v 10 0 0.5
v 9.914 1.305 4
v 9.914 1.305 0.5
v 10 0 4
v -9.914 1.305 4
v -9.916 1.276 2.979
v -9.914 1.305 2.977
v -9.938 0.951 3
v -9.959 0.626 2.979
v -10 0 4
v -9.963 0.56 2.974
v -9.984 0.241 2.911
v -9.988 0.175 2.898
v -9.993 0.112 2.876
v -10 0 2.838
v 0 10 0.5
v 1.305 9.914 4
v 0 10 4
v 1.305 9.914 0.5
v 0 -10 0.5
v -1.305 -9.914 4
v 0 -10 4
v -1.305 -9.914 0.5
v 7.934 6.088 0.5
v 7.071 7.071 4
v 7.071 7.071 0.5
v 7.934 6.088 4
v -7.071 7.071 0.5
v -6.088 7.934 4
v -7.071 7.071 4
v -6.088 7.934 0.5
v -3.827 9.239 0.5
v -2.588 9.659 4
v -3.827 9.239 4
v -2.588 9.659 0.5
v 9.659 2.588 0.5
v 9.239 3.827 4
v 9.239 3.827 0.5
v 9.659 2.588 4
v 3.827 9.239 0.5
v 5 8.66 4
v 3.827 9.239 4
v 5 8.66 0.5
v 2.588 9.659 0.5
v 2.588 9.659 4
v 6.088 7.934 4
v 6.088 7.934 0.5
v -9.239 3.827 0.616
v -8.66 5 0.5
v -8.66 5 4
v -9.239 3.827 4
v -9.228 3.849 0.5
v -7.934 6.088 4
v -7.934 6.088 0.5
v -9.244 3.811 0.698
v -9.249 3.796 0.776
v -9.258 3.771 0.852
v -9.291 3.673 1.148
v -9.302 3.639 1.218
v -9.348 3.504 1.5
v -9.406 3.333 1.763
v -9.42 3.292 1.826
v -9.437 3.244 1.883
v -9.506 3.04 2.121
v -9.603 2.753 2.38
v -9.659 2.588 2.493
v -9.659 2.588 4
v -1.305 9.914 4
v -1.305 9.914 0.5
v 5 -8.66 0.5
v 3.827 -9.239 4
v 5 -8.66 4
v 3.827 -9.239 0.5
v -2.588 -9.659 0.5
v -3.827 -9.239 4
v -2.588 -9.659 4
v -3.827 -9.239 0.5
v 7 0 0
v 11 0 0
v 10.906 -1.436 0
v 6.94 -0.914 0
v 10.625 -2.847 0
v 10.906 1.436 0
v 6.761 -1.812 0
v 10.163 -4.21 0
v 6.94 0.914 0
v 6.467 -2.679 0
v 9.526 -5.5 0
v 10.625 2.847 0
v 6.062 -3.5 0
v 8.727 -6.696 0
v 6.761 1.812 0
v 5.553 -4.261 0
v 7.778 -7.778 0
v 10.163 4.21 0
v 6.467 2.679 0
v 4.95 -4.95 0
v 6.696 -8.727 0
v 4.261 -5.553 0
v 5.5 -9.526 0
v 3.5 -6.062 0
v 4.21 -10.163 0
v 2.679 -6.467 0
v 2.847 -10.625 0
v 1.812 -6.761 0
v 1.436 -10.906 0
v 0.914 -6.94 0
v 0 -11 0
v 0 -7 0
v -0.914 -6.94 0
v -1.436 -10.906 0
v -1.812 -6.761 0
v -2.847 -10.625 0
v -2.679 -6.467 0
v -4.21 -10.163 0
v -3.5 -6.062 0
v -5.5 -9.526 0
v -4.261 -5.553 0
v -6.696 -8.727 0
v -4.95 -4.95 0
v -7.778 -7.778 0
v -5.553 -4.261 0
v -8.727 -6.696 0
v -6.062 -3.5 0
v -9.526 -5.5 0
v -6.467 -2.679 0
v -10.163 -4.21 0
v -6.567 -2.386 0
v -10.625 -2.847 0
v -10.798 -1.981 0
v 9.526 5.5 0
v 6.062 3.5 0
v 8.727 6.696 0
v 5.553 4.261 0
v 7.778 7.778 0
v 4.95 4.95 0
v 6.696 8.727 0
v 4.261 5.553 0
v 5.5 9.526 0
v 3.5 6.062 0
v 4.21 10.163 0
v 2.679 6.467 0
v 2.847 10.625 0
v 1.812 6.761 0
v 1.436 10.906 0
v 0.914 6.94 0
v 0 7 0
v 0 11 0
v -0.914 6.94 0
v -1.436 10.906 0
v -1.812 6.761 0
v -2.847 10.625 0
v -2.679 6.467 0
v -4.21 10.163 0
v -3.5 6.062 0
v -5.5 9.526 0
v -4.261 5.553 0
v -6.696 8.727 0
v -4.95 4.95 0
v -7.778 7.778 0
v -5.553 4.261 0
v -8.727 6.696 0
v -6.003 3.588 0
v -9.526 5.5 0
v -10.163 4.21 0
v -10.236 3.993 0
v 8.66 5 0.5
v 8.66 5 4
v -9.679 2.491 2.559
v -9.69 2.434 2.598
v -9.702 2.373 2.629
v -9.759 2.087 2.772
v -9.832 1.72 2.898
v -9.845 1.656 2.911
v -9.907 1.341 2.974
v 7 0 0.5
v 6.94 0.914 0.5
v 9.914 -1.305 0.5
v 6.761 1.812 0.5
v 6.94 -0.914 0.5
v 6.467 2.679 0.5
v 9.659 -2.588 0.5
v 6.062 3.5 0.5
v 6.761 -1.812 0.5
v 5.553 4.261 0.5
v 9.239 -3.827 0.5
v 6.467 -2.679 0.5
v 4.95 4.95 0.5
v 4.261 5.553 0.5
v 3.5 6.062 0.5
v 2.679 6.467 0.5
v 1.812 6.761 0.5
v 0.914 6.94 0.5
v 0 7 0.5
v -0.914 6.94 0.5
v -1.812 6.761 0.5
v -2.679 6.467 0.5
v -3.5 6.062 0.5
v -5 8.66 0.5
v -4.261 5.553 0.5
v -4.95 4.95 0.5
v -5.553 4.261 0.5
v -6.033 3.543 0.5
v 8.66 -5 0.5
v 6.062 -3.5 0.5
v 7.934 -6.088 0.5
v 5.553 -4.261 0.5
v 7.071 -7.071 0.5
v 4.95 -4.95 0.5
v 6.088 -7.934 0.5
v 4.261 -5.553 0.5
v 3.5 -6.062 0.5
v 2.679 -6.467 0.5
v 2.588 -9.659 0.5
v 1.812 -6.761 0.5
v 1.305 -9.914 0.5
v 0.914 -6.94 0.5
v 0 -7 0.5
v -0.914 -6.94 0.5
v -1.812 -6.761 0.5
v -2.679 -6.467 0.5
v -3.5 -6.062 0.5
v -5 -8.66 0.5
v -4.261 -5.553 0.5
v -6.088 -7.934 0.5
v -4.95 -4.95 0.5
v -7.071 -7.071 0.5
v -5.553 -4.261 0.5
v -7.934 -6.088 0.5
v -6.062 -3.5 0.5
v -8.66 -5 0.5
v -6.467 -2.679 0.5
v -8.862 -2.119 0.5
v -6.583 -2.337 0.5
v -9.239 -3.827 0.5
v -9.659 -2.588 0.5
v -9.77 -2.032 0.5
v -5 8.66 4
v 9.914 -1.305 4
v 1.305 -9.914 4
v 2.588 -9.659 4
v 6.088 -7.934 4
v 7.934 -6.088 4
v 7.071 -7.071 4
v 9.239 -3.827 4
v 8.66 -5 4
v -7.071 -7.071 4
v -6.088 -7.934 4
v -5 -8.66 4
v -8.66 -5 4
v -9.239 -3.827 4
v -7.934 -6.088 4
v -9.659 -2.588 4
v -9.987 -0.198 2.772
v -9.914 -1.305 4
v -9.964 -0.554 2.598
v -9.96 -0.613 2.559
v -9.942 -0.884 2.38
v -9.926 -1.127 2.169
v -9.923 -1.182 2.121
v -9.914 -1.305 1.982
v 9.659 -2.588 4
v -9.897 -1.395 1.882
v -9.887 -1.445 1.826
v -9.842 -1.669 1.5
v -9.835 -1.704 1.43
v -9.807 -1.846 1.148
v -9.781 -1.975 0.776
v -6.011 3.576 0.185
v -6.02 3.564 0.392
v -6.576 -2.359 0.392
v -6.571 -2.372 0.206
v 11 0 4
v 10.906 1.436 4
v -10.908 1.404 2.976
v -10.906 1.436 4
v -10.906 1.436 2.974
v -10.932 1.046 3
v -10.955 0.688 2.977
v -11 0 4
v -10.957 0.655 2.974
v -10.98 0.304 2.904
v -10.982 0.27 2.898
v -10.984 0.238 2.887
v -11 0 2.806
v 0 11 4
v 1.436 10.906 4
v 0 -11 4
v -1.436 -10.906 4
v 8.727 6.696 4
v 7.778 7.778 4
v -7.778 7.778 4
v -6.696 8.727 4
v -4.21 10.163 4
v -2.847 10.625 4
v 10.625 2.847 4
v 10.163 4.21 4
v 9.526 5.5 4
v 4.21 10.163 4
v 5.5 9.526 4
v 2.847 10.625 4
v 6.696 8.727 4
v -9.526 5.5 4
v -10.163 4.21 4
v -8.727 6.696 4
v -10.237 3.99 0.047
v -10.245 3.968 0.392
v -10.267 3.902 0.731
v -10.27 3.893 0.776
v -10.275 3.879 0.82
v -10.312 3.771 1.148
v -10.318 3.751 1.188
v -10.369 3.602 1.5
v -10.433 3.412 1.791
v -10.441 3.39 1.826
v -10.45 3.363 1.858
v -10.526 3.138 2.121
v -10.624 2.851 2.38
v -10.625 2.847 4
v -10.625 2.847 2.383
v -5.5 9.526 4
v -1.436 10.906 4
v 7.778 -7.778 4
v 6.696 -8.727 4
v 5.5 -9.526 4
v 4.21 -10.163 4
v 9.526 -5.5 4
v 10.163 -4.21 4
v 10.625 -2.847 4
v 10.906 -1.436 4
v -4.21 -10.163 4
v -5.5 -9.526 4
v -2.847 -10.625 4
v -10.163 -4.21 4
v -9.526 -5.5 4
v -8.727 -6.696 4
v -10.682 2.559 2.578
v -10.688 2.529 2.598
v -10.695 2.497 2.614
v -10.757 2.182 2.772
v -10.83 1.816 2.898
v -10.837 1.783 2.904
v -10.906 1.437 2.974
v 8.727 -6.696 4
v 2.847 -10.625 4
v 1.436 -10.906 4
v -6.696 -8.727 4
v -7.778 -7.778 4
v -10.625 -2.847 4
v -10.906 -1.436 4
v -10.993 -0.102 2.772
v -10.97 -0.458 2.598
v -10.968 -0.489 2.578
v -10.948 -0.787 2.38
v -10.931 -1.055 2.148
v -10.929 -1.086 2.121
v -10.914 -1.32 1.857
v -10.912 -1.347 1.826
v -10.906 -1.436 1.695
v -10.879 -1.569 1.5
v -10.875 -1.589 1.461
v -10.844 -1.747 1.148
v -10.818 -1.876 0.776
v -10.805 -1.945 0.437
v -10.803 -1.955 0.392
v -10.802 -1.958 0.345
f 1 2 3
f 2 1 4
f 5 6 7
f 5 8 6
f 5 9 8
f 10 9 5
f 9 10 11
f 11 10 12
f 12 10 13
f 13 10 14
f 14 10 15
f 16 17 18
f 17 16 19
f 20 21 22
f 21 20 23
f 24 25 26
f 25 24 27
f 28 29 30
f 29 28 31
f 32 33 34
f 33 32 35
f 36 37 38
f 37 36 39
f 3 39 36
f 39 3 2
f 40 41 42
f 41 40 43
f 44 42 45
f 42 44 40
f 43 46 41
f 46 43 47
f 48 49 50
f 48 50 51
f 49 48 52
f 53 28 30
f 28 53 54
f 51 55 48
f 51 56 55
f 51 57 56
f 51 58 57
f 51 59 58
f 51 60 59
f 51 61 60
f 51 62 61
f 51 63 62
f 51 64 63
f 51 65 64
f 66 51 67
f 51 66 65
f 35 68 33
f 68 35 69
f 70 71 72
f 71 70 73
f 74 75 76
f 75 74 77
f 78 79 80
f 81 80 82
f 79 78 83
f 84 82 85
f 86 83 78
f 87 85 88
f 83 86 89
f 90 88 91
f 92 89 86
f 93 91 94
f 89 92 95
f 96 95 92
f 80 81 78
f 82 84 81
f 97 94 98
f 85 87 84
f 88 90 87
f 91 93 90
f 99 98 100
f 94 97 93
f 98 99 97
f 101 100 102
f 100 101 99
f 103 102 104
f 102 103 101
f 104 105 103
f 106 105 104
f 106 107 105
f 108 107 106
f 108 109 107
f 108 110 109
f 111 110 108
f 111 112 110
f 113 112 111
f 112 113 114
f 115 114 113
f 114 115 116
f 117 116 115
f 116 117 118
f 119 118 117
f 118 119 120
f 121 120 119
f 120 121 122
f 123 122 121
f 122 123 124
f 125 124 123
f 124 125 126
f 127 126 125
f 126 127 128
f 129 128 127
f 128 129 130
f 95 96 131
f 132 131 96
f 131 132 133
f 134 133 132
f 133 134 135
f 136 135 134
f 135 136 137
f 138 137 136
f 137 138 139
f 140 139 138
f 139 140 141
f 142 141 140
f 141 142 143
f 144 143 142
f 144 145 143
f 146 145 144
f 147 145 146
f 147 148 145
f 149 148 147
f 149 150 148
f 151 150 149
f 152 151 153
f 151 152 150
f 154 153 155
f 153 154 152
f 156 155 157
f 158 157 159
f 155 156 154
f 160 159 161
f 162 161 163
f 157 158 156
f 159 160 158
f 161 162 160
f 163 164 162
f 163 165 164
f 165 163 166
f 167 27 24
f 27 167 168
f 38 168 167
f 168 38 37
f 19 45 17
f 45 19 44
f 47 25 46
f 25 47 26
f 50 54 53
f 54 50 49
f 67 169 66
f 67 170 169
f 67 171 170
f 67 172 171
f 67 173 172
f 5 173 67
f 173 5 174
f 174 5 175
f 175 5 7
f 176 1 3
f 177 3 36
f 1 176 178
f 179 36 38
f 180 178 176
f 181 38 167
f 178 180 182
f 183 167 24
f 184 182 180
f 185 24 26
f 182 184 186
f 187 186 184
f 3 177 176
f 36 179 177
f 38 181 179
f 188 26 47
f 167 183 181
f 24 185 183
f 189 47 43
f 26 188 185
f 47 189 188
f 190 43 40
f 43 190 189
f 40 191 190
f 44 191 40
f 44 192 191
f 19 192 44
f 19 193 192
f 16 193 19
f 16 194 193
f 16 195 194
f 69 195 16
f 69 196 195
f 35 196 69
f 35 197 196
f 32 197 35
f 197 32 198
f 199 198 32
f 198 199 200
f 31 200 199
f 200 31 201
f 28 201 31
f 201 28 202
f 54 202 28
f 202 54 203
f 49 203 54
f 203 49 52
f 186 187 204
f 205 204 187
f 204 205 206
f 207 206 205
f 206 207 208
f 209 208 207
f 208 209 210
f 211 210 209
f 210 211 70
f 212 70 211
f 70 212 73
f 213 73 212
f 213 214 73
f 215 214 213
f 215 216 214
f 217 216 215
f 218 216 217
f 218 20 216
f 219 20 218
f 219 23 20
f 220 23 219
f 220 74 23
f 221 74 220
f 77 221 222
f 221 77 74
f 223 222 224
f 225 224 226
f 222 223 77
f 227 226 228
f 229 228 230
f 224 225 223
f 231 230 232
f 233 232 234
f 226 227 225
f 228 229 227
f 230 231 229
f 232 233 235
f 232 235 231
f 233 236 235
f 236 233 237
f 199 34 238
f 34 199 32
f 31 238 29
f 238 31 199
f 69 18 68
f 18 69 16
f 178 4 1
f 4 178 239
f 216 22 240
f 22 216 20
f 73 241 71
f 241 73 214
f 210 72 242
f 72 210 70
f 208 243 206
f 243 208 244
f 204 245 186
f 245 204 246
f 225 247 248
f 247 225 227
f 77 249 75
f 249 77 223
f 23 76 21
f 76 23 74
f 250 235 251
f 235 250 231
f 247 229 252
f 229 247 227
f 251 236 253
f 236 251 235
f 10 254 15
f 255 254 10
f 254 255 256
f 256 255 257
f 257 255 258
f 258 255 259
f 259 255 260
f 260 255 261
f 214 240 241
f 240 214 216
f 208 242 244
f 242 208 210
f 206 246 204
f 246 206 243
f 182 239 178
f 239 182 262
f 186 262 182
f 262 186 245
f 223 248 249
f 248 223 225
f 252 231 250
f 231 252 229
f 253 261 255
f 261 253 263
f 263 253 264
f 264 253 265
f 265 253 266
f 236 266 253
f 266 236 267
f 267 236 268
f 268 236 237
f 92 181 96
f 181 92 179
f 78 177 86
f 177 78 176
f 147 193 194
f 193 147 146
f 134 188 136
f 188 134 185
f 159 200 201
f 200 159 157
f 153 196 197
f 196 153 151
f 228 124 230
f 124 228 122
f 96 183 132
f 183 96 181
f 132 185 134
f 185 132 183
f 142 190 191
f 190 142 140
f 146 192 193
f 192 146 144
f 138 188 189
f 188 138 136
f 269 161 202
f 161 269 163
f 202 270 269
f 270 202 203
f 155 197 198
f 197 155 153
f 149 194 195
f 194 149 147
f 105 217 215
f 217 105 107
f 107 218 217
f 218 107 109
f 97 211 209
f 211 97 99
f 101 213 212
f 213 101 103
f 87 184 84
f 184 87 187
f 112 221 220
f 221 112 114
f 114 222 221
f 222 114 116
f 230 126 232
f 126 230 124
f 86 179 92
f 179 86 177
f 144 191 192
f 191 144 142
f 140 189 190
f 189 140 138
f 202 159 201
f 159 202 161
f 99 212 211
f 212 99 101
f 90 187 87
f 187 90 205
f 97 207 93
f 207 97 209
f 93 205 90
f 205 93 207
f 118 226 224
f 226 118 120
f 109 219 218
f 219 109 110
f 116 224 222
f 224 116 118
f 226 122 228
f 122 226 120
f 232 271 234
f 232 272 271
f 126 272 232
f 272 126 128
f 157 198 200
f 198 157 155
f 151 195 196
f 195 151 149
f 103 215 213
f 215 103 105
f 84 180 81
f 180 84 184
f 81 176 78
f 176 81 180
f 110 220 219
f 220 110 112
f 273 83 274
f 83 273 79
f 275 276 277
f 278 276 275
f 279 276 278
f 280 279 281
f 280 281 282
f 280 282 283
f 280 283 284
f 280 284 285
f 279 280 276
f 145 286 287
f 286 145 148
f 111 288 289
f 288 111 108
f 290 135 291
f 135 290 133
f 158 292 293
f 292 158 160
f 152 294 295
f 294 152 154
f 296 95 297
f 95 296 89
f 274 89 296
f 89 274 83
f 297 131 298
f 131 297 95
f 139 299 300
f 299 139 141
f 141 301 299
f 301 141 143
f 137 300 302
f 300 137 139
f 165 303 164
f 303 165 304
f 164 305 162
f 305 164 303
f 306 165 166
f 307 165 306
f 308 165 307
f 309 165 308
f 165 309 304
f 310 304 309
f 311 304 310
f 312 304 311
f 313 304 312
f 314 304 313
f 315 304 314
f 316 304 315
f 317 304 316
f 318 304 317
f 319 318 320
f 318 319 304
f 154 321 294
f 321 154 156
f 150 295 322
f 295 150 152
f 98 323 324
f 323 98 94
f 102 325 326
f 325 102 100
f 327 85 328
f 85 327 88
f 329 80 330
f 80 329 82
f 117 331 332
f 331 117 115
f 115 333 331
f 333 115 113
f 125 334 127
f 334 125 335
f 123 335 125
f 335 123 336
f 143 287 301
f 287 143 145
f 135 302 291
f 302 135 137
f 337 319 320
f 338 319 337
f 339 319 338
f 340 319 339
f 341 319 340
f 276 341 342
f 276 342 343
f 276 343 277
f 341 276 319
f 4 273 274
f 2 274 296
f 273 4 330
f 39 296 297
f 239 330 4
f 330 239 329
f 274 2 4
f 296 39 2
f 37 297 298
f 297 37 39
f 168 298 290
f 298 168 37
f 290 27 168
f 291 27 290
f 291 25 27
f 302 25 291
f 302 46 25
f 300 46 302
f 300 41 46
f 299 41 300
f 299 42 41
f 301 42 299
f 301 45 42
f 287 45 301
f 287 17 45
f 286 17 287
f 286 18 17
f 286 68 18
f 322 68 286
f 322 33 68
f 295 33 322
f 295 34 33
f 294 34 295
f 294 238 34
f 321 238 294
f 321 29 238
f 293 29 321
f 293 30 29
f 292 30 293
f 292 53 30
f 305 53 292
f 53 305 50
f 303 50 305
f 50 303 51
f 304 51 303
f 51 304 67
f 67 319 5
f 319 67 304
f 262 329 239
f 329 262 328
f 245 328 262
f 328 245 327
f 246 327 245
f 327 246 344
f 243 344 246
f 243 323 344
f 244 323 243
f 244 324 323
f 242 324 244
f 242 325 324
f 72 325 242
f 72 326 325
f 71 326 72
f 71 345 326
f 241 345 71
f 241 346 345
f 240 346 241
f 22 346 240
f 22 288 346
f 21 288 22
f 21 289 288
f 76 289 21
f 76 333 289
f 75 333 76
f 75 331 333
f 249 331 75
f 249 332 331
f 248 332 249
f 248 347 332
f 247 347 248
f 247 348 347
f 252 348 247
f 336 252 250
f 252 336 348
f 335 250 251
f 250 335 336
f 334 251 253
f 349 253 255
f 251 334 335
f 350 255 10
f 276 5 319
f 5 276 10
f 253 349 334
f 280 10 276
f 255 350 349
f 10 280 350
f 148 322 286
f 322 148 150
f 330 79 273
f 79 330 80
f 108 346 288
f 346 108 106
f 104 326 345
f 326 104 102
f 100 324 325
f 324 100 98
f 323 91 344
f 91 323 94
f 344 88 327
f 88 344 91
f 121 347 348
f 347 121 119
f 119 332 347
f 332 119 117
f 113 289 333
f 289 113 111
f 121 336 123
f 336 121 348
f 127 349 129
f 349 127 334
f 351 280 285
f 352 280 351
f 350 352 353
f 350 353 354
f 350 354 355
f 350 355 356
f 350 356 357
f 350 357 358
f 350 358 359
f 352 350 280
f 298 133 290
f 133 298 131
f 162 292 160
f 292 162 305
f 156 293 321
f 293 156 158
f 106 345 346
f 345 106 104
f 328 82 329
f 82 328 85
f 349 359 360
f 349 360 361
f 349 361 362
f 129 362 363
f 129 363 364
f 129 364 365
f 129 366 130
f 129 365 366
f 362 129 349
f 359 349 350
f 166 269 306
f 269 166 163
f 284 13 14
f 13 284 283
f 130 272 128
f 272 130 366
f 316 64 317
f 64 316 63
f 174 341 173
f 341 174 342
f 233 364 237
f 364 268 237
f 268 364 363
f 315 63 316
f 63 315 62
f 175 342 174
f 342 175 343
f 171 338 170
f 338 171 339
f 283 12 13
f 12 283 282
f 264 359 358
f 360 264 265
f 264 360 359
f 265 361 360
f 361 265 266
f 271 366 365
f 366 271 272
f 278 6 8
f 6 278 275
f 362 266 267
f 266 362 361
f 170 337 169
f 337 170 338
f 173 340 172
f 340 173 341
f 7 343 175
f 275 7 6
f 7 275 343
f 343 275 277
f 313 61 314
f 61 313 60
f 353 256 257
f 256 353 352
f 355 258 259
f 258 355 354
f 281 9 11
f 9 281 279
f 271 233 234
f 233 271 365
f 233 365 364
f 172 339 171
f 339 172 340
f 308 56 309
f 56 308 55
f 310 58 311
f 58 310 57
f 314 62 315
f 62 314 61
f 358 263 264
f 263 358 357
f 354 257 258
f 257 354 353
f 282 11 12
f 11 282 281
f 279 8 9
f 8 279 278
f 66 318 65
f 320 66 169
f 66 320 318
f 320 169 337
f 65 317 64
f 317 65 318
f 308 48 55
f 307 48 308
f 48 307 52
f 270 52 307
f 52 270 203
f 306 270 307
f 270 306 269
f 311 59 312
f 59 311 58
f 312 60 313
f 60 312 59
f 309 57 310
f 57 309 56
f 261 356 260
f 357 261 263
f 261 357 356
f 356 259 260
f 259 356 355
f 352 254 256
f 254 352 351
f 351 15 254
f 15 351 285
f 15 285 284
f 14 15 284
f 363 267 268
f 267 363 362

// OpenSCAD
// file: ../build_environments.scad
// build_environments.scad: modules to build level sections
//

module pool(diameter=10.0, wall_height=2.0, step_width=3.0, connections=[])
{
    difference() {
        union() {
        difference() {
            cylinder(h=0.5,r1=diameter+step_width,r2=diameter+step_width,$fn=48);
            translate([0,0,-0.1])
                cylinder(h=0.7,r1=diameter,r2=diameter,$fn=48);
        }
        difference() {
            cylinder(h=wall_height,r1=diameter+step_width+1.0,r2=diameter+step_width+1.0,$fn=48);
            translate([0,0,-0.1])
                cylinder(h=wall_height+0.2,r1=diameter+step_width,r2=diameter+step_width,$fn=48);
        }
        }
    
        for (c = connections)
        {
            rotate([0,90,0]) {
                angle = atan2(c[1],c[0]);
                rotate([-angle,0,0]) {
                    cylinder(h=diameter+5.0,r1=c[2],r2=c[2],$fn=48);
                }
            }
        }
    }
}

module straight(length=10.0, width=2.0, dy1=0.0, dy2=0.0, dz=0.0)
{
    dims = [0, 0, 0, 0, 0, (dz/length)];
    matrix = [
        [ 1, dims[0], dims[1], 0 ],
        [ dims[2], 1, dims[4], 0 ],
        [ dims[5], dims[3], 1, 0 ],
        [ 0, 0, 0, 1 ]
    ];
    multmatrix(matrix)
    difference() {
        translate([dy1,0,0])
        union() {
            rotate([0,90,0]) {
                difference() {
                    cylinder(h=(length-dy1-dy2),r1=width+1.0,r2=width+1.0,$fn=24);
                    translate([0,0,-0.1])
                        cylinder(h=(length-dy1-dy2+0.2),r1=width,r2=width,$fn=24);
                }
                difference() {
                    cylinder(h=1.0,r1=width+2.0,r2=width+2.0,$fn=24);
                    translate([0,0,-0.1])
                        cylinder(h=1.2,r1=width,r2=width,$fn=24);
                }
                translate([0,0,(length-dy1-dy2)-1.0]) {
                    difference() {
                        cylinder(h=1.0,r1=width+2.0,r2=width+2.0,$fn=24);
                        translate([0,0,-0.1])
                            cylinder(h=1.2,r1=width,r2=width,$fn=24);
                    }
                }
            }
        }
        translate([0,0,-(2*width+4.0)/2])
            cube([3*length,3*length,2*width+4.0],center=true);
    }
}

module curve(p0=[0,0], center=[0,0], dir=1, angle=0.0, width=2.0)
{
    radius = sqrt((p0[0]-center[0])*(p0[0]-center[0]) + (p0[1]-center[1])*(p0[1]-center[1]));
    if (dir == 0) {
        difference() {
            rotate([0,0,-90])
            difference() {
                rotate_extrude(angle = angle, convexity = 10, $fn=32)
                    translate([radius, 0, 0])
                        circle(r = width+1.0,$fn=24);
                rotate([0,0,-1.0])
                    rotate_extrude(angle = angle+2.0, convexity = 10, $fn=32)
                        translate([radius, 0, 0])
                            circle(r = width,$fn=24);
            }
            translate([0,0,-(2*width+4.0)/2])
                cube([5*radius,5*radius,2*width+4.0],center=true);
        }
    }
    else {
        difference() {
            rotate([0,0,90])
            difference() {
                rotate_extrude(angle = -angle, convexity = 10, $fn=32)
                    translate([radius, 0, 0])
                        circle(r = width+1.0,$fn=24);
                rotate([0,0,1.0])
                    rotate_extrude(angle = -angle-2.0, convexity = 10, $fn=32)
                        translate([radius, 0, 0])
                            circle(r = width,$fn=24);
            }
            translate([0,0,-(2*width+4.0)/2])
                cube([5*radius,5*radius,2*width+4.0],center=true);
        }
    }

}

// test pool
//pool(diameter=12.0000, wall_height=3.0000, step_width=3.0000, connections=[[0.0000,-26.0000,2.0000], [23.6074,0.0000,2.0000]]);

// test straight, slope
//straight(length=26.0000, width=2.0000, dy1=11.8322, dy2=6.7082, dz=0.0000);
//straight(length=29.1549, width=12.0000, dy1=0.0000, dy2=0.0000, dz=-15.0000);

// test curve
//curve(p0=[23.6074, 0.0000], center=[23.6074, 5.0000], dir=0, angle=60.1011, width=2.0000);
//curve(p0=[33.6426, 12.4219], center=[37.9771, 9.9295], dir=1, angle=120.4627, width=2.0000);
// main file
use <../build_environments.scad>;
pool(diameter=7.0000, wall_height=4.0000, step_width=3.0000, connections=[[-8.7400,0.8360,3.0000]]);
